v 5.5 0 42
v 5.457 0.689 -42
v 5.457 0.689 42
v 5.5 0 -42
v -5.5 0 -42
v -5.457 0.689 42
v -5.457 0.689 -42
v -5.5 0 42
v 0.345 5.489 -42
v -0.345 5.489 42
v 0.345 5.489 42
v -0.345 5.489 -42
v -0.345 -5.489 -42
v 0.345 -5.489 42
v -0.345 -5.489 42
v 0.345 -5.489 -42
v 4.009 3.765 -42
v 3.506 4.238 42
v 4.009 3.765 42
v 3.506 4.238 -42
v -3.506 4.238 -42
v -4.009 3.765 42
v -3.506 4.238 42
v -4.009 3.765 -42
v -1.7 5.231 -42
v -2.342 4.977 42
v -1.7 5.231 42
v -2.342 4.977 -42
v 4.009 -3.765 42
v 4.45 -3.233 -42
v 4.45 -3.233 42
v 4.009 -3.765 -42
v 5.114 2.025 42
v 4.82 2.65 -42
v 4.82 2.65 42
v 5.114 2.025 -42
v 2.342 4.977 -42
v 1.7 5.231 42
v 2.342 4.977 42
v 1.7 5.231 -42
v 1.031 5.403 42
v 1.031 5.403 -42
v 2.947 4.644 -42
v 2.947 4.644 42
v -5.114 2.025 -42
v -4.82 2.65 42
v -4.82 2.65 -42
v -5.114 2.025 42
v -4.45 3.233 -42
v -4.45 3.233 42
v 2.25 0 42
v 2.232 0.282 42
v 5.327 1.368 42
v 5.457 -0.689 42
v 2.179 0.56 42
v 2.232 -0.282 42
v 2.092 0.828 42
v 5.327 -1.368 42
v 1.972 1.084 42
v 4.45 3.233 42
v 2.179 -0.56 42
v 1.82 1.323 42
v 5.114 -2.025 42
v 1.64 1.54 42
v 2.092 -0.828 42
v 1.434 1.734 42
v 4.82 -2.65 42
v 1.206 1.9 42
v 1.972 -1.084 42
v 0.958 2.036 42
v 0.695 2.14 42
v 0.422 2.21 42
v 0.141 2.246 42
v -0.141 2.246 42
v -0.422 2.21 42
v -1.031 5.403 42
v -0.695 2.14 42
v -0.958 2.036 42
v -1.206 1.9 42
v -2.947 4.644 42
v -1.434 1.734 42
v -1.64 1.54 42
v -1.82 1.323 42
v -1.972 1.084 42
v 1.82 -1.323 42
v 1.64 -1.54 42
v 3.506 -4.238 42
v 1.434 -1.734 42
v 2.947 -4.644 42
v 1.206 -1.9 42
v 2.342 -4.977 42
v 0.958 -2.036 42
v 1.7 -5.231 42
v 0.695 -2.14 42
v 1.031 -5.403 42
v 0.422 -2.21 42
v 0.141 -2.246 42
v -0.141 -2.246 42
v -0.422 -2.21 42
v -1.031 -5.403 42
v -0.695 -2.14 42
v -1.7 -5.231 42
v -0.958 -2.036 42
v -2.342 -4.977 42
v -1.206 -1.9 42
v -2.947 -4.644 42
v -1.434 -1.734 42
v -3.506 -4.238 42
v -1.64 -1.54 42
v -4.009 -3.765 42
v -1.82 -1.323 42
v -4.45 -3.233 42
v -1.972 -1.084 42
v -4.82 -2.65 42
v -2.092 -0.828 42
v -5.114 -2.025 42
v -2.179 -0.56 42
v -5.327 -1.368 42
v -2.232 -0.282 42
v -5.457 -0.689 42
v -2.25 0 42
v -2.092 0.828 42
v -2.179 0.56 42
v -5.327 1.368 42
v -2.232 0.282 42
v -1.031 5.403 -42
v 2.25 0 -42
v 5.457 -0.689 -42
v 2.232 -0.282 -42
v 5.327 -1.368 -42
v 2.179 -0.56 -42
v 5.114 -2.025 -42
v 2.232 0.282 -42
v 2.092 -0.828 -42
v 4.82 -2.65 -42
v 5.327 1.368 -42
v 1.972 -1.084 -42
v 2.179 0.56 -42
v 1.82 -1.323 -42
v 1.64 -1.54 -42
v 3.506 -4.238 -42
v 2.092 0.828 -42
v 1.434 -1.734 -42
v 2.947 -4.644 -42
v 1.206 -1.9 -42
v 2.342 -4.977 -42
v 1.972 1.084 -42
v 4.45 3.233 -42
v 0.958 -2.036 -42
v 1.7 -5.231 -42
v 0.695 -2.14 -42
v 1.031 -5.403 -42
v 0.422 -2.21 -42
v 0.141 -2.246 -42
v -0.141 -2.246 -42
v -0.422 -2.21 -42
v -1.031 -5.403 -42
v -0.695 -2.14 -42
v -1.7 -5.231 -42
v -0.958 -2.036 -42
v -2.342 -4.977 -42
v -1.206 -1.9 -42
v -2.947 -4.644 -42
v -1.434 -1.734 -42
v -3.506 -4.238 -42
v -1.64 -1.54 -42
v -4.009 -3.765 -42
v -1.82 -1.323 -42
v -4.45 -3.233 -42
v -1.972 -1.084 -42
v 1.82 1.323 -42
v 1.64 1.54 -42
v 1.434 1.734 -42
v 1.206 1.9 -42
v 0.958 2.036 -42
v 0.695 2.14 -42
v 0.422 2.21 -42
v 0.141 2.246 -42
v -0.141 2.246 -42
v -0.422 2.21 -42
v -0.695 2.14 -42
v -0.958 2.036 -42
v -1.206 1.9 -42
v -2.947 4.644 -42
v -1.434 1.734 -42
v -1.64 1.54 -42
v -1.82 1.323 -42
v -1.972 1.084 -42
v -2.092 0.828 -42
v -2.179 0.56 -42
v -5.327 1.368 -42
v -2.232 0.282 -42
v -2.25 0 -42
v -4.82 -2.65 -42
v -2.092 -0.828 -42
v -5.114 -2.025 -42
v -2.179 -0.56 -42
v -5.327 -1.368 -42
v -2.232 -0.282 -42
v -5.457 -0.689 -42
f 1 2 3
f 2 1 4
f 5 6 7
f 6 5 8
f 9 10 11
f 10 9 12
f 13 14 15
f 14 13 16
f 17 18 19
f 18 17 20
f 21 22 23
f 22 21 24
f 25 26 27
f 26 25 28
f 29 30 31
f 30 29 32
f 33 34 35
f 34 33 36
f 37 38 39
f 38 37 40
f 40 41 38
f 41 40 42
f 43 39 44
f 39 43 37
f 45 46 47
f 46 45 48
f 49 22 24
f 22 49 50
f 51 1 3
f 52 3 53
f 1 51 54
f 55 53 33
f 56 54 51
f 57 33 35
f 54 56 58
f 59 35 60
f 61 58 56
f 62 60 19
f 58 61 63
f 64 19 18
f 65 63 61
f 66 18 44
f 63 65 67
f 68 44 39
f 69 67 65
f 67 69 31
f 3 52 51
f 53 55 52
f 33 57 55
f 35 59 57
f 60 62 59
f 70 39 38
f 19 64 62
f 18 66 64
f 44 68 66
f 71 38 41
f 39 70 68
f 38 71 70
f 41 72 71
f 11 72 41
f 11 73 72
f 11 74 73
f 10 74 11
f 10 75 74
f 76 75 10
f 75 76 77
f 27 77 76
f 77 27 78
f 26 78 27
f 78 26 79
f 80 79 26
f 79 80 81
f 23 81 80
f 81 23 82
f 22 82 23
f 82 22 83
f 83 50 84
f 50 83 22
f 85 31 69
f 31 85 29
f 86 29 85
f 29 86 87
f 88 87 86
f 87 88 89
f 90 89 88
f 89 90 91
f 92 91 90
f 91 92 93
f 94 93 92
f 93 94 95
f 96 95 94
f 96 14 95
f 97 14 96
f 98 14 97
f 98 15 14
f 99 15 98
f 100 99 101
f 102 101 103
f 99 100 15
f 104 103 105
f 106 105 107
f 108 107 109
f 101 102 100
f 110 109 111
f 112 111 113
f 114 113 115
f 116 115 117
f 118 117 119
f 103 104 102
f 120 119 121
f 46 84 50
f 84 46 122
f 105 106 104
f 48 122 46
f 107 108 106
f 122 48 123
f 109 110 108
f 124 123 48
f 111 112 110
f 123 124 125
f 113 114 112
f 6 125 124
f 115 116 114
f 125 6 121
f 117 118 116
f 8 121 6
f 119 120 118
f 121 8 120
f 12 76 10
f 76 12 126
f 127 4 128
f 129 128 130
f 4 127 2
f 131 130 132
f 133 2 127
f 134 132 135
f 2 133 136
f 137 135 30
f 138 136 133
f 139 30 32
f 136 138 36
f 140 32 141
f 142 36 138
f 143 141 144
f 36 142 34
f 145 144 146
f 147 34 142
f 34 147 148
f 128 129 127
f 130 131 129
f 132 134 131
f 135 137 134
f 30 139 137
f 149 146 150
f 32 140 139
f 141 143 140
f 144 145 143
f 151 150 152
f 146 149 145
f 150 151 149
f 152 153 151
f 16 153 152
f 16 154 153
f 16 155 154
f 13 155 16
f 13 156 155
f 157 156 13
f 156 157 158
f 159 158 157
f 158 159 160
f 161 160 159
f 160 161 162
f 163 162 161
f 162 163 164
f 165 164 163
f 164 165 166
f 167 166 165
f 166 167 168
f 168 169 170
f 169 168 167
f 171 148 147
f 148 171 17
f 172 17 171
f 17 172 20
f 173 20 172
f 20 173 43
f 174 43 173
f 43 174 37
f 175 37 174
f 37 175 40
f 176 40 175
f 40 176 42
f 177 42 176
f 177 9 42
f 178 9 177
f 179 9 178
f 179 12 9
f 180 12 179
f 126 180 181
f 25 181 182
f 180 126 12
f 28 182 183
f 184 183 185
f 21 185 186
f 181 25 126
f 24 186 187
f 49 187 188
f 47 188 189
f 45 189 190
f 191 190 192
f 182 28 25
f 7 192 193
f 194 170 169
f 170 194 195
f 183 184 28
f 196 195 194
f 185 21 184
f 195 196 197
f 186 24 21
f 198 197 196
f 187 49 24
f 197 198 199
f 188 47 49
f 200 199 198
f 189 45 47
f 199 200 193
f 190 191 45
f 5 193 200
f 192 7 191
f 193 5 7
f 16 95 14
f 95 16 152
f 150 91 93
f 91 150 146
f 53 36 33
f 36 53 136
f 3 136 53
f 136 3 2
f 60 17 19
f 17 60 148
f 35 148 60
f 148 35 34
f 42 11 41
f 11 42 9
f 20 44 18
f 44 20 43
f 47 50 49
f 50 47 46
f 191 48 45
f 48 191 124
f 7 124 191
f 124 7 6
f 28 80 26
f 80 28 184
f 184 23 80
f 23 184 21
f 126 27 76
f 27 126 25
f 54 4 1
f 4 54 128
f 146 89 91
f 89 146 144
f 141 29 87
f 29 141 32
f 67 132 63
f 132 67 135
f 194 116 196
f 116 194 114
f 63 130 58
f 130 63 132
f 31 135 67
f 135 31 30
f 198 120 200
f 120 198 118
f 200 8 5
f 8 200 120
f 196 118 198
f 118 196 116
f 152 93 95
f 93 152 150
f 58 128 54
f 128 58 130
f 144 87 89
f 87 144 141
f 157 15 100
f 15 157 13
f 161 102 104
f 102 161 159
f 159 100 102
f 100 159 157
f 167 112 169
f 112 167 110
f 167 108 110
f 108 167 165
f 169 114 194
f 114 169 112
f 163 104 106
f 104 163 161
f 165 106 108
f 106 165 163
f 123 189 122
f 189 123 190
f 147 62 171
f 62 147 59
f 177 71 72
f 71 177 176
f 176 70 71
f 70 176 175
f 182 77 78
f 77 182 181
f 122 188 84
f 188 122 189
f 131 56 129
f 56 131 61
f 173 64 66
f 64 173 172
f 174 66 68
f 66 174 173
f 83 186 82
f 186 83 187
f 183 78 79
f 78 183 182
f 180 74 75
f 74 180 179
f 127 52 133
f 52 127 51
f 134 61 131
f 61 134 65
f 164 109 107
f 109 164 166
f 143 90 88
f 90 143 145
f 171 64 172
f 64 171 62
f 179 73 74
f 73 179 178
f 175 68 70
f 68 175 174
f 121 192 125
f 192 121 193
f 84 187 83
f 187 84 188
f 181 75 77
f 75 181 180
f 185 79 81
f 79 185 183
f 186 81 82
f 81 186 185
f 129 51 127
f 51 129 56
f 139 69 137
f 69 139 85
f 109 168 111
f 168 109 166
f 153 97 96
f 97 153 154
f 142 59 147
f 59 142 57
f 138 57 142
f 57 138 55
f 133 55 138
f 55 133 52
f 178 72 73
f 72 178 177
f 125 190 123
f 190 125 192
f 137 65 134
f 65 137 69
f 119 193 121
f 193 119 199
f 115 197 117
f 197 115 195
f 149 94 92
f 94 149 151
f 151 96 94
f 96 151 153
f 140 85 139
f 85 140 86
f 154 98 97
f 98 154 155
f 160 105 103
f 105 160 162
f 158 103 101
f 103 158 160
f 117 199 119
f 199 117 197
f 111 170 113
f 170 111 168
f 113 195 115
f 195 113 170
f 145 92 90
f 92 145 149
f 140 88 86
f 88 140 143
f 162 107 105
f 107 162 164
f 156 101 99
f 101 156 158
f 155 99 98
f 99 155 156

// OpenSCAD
$fn = 50;


difference() {
	union() {
		translate(v = [0, 0, -42.0000000000]) {
			cylinder(h = 84, r = 5.5000000000);
		}
	}
	union() {
		translate(v = [0, 0, -100.0000000000]) {
			cylinder(h = 200, r = 2.2500000000);
		}
	}
}
